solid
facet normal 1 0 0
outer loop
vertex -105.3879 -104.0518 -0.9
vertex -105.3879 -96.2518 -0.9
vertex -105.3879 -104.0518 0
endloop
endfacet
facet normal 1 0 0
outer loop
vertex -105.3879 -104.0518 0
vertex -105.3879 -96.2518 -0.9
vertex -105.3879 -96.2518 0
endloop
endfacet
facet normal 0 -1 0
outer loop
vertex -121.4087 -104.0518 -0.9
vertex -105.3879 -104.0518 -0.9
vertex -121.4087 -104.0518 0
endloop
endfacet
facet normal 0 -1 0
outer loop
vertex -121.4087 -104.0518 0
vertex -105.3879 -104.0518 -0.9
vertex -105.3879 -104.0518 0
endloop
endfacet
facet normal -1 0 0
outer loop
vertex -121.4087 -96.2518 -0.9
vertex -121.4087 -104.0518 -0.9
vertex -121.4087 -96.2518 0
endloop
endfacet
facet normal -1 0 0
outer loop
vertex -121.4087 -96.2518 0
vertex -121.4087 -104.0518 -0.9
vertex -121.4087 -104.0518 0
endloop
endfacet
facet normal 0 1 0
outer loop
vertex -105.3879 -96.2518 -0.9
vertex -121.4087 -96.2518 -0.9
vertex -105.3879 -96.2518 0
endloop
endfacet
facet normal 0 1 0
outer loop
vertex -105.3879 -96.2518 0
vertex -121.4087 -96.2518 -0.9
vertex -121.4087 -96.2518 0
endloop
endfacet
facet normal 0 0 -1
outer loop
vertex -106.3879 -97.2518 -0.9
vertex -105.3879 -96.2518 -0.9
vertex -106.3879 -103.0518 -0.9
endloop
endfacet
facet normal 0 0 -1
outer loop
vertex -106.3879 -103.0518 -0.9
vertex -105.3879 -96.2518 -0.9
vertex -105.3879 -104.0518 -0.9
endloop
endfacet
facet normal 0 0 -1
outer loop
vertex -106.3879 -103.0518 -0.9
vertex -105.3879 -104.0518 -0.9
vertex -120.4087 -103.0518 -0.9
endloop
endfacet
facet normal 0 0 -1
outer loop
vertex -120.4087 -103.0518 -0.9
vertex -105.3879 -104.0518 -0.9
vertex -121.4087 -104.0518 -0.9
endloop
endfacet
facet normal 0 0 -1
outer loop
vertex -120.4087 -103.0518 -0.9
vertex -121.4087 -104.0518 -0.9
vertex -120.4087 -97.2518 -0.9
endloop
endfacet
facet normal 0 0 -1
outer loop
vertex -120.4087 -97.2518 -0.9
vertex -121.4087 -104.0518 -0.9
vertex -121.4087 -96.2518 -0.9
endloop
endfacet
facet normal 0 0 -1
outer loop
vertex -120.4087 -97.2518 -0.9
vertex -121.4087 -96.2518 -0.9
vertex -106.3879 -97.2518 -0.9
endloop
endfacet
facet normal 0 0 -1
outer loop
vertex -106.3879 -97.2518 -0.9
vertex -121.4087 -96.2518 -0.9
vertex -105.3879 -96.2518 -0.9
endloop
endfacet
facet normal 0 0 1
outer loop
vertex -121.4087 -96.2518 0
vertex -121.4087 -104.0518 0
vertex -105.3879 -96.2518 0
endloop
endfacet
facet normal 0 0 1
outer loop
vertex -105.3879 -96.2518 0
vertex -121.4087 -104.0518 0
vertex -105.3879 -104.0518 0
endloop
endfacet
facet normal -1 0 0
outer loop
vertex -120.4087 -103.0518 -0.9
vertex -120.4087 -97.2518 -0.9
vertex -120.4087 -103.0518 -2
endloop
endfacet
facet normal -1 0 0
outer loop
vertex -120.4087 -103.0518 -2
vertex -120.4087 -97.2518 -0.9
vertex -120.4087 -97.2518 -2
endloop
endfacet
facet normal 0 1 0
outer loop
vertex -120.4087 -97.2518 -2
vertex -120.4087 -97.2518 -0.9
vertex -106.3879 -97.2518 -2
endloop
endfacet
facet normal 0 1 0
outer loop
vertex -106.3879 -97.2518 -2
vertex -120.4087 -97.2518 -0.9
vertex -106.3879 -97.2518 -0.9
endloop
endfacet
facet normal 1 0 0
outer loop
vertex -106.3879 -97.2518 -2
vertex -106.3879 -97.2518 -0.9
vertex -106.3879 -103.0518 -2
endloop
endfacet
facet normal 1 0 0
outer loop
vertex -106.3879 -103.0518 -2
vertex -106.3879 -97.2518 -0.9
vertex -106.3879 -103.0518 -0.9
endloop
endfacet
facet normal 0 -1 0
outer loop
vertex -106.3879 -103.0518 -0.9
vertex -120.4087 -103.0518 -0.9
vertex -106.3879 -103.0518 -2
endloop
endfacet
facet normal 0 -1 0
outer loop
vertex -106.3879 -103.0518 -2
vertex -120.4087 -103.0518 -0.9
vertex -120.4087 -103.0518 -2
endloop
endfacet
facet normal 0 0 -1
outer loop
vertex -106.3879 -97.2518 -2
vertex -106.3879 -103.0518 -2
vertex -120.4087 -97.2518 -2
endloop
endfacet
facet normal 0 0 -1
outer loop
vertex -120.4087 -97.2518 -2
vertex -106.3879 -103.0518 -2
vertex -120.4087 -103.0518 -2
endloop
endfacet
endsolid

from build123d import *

# Parameters (mm, degrees)
SKETCH1_W           = 16.0208
SKETCH1_H           = 7.8
SKETCH1_W_2         = 14.0208
SKETCH1_H_2         = 5.8
BOSS_EXTRUDE1_DEPTH = 0.9
BOSS_EXTRUDE2_START = -0.9
SKETCH1_4_W         = 14.0208
SKETCH1_4_H         = 5.8
BOSS_EXTRUDE2_DEPTH = 1.1


with BuildPart() as part:
    # Sketch1 → Boss-Extrude1 (new body)
    # profile 1 of 2: a face of its own
    with BuildSketch(Plane.XY):
        with Locations((-113.3983, -100.1518)):
            Rectangle(SKETCH1_W, SKETCH1_H)
        with Locations((-113.3983, -100.1518)):
            Rectangle(SKETCH1_W_2, SKETCH1_H_2, mode=Mode.SUBTRACT)
    # profile 2 of 2: a face of its own
    with BuildSketch(Plane.XY):
        with Locations((-113.3983, -100.1518)):
            Rectangle(SKETCH1_W_2, SKETCH1_H_2)
    extrude(amount=-BOSS_EXTRUDE1_DEPTH)

    # Sketch1<4> → Boss-Extrude2 (add)
    with BuildSketch(Plane.XY.offset(BOSS_EXTRUDE2_START)):
        with Locations((-113.3983, -100.1518)):
            Rectangle(SKETCH1_4_W, SKETCH1_4_H)
    extrude(amount=-BOSS_EXTRUDE2_DEPTH)


solid = part.part
